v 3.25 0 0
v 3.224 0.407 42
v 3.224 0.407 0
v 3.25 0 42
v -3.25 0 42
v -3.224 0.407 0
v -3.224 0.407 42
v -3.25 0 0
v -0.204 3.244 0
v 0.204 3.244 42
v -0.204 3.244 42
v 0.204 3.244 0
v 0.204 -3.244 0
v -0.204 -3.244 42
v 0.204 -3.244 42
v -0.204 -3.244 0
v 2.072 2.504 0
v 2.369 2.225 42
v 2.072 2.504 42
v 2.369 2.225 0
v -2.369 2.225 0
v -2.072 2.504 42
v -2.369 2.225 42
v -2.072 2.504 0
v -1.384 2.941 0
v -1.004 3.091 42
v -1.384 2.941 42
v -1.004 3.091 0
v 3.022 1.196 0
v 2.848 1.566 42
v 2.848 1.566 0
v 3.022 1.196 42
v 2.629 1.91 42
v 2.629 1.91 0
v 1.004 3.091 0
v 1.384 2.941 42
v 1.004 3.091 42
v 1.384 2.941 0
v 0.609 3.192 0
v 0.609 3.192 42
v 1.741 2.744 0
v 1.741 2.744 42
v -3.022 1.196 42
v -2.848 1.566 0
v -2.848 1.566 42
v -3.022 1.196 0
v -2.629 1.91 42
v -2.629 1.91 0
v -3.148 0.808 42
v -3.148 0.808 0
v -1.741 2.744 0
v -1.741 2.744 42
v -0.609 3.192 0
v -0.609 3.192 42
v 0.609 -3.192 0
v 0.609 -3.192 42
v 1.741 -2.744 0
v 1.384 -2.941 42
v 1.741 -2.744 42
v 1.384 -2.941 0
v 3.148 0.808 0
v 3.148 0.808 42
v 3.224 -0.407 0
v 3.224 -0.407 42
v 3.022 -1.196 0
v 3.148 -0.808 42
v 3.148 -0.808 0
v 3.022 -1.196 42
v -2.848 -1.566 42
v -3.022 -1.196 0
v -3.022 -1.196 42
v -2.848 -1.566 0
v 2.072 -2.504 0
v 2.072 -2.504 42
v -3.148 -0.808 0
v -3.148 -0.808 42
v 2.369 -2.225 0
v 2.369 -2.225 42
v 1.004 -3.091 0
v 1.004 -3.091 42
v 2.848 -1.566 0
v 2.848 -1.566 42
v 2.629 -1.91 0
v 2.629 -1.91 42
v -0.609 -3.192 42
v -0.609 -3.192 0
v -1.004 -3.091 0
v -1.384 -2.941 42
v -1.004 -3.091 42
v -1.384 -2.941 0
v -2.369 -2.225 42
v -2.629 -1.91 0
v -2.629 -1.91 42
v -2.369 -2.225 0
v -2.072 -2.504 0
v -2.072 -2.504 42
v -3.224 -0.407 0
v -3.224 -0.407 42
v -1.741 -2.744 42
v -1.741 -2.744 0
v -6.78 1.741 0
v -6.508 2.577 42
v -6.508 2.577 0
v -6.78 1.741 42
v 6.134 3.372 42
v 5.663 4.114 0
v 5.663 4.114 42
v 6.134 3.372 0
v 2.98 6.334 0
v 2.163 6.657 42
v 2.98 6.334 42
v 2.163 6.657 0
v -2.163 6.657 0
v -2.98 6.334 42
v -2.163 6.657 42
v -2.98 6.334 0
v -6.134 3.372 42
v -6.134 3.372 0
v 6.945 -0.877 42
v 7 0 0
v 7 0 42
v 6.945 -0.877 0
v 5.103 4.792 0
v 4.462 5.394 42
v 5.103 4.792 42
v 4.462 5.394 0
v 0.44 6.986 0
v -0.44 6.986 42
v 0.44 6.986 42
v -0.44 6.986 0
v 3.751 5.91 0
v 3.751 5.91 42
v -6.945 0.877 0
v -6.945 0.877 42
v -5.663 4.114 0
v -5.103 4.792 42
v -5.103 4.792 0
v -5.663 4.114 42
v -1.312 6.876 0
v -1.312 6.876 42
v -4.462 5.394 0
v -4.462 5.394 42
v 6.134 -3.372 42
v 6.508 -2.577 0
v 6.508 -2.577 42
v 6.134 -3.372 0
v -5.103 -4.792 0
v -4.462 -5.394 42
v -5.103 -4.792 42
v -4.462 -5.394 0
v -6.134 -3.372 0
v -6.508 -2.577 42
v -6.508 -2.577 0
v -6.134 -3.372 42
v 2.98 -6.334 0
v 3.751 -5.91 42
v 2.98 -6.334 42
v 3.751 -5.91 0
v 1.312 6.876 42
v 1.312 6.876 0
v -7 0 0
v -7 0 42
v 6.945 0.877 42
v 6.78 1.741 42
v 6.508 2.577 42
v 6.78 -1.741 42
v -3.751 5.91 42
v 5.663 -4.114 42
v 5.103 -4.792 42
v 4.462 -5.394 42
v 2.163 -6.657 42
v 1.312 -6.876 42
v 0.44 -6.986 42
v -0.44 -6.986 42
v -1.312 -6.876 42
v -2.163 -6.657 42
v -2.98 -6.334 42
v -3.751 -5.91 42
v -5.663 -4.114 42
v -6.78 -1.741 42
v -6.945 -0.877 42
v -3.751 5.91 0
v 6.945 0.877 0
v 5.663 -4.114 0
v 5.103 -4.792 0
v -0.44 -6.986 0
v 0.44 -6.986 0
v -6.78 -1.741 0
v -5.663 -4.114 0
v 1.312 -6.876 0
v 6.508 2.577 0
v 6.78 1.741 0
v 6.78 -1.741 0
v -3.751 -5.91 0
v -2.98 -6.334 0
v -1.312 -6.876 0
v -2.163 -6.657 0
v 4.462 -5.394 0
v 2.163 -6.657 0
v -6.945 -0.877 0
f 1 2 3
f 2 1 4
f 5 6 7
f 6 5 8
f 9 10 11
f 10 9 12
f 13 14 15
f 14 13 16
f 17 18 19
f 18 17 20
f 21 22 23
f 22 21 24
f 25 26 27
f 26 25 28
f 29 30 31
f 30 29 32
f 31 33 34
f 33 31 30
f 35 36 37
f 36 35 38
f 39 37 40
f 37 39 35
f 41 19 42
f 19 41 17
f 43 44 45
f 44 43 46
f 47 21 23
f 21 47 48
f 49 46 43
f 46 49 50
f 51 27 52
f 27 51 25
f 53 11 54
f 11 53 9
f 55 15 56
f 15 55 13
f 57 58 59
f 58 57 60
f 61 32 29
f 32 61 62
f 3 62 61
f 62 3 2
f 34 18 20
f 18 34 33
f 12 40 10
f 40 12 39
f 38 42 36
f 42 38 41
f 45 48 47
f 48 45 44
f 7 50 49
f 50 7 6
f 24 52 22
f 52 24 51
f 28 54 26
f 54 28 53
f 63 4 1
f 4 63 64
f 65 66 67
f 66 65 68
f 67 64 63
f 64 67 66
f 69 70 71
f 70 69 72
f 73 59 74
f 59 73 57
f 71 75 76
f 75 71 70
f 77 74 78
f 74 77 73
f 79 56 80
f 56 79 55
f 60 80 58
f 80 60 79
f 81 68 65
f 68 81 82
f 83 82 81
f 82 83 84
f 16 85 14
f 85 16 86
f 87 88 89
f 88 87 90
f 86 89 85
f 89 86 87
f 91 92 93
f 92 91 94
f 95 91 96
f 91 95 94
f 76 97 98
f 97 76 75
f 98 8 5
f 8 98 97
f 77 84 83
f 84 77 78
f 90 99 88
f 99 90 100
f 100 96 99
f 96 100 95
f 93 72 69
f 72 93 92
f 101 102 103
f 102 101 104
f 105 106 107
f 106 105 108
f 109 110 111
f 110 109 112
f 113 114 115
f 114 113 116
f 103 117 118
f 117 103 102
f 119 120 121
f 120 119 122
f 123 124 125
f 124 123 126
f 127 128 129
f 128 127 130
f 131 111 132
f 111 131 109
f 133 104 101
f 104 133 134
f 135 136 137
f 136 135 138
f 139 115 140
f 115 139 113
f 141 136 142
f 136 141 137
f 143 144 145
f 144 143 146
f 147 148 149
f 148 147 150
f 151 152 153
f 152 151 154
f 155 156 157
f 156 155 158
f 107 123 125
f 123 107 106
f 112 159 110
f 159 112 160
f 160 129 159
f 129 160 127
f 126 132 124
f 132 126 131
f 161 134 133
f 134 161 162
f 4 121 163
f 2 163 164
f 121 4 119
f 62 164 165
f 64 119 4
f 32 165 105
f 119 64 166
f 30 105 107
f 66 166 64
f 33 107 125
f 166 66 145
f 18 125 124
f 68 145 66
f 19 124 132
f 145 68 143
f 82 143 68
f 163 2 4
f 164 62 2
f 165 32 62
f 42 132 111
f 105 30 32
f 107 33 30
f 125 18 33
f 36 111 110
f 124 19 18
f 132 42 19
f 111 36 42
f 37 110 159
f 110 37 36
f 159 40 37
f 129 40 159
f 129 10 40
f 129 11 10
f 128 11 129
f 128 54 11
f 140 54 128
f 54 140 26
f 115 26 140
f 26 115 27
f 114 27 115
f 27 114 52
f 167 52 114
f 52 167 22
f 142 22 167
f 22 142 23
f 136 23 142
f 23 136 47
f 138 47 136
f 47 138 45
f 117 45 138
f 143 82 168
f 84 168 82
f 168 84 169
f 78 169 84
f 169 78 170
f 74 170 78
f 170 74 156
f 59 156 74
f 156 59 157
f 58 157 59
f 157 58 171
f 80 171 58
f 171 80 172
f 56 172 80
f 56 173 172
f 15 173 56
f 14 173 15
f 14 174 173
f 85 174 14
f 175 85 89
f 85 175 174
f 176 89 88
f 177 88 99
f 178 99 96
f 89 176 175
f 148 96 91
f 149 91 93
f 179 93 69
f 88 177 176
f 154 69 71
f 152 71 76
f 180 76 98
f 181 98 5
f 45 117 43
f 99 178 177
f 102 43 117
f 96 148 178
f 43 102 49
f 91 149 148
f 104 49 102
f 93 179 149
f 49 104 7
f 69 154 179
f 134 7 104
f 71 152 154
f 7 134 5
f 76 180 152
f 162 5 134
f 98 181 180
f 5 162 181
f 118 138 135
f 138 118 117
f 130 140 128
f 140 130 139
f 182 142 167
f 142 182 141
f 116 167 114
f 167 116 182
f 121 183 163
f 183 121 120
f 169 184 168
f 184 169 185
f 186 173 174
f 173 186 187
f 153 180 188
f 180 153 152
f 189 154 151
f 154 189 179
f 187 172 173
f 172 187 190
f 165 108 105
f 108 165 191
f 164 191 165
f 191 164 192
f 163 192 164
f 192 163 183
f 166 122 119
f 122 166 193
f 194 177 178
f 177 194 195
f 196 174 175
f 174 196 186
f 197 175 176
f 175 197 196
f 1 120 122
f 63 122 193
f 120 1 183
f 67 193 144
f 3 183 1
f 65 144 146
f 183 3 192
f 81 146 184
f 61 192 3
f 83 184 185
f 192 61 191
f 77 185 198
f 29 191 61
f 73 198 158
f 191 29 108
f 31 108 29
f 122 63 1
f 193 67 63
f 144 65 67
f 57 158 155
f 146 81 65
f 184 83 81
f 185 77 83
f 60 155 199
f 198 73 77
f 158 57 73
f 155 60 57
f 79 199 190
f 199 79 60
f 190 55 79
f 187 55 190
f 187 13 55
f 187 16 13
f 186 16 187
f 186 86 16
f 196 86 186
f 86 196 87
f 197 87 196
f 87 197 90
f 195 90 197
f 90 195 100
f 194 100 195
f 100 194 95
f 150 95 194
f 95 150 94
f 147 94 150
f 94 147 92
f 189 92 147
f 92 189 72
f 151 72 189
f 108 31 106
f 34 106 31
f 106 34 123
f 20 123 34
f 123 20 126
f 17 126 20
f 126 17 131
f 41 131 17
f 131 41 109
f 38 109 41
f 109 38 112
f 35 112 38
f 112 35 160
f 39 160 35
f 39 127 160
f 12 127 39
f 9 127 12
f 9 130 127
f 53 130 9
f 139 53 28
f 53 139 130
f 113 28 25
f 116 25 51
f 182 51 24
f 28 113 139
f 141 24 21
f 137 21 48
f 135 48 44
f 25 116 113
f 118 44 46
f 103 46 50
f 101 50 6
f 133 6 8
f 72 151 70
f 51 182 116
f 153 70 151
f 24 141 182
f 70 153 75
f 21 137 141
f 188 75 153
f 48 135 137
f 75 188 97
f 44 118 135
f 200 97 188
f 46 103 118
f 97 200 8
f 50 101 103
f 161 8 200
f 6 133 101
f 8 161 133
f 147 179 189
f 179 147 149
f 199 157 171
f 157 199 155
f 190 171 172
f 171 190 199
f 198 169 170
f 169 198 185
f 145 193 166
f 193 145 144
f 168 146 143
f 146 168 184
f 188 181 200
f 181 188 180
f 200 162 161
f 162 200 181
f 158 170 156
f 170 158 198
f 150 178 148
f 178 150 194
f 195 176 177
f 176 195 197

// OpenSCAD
$fn = 50;


difference() {
	union() {
		cylinder(h = 42, r = 7.0000000000);
	}
	union() {
		cylinder(h = 42, r = 3.2500000000);
		cylinder(h = 42, r = 1.8000000000);
		cylinder(h = 42, r = 1.8000000000);
		cylinder(h = 42, r = 1.8000000000);
	}
}
